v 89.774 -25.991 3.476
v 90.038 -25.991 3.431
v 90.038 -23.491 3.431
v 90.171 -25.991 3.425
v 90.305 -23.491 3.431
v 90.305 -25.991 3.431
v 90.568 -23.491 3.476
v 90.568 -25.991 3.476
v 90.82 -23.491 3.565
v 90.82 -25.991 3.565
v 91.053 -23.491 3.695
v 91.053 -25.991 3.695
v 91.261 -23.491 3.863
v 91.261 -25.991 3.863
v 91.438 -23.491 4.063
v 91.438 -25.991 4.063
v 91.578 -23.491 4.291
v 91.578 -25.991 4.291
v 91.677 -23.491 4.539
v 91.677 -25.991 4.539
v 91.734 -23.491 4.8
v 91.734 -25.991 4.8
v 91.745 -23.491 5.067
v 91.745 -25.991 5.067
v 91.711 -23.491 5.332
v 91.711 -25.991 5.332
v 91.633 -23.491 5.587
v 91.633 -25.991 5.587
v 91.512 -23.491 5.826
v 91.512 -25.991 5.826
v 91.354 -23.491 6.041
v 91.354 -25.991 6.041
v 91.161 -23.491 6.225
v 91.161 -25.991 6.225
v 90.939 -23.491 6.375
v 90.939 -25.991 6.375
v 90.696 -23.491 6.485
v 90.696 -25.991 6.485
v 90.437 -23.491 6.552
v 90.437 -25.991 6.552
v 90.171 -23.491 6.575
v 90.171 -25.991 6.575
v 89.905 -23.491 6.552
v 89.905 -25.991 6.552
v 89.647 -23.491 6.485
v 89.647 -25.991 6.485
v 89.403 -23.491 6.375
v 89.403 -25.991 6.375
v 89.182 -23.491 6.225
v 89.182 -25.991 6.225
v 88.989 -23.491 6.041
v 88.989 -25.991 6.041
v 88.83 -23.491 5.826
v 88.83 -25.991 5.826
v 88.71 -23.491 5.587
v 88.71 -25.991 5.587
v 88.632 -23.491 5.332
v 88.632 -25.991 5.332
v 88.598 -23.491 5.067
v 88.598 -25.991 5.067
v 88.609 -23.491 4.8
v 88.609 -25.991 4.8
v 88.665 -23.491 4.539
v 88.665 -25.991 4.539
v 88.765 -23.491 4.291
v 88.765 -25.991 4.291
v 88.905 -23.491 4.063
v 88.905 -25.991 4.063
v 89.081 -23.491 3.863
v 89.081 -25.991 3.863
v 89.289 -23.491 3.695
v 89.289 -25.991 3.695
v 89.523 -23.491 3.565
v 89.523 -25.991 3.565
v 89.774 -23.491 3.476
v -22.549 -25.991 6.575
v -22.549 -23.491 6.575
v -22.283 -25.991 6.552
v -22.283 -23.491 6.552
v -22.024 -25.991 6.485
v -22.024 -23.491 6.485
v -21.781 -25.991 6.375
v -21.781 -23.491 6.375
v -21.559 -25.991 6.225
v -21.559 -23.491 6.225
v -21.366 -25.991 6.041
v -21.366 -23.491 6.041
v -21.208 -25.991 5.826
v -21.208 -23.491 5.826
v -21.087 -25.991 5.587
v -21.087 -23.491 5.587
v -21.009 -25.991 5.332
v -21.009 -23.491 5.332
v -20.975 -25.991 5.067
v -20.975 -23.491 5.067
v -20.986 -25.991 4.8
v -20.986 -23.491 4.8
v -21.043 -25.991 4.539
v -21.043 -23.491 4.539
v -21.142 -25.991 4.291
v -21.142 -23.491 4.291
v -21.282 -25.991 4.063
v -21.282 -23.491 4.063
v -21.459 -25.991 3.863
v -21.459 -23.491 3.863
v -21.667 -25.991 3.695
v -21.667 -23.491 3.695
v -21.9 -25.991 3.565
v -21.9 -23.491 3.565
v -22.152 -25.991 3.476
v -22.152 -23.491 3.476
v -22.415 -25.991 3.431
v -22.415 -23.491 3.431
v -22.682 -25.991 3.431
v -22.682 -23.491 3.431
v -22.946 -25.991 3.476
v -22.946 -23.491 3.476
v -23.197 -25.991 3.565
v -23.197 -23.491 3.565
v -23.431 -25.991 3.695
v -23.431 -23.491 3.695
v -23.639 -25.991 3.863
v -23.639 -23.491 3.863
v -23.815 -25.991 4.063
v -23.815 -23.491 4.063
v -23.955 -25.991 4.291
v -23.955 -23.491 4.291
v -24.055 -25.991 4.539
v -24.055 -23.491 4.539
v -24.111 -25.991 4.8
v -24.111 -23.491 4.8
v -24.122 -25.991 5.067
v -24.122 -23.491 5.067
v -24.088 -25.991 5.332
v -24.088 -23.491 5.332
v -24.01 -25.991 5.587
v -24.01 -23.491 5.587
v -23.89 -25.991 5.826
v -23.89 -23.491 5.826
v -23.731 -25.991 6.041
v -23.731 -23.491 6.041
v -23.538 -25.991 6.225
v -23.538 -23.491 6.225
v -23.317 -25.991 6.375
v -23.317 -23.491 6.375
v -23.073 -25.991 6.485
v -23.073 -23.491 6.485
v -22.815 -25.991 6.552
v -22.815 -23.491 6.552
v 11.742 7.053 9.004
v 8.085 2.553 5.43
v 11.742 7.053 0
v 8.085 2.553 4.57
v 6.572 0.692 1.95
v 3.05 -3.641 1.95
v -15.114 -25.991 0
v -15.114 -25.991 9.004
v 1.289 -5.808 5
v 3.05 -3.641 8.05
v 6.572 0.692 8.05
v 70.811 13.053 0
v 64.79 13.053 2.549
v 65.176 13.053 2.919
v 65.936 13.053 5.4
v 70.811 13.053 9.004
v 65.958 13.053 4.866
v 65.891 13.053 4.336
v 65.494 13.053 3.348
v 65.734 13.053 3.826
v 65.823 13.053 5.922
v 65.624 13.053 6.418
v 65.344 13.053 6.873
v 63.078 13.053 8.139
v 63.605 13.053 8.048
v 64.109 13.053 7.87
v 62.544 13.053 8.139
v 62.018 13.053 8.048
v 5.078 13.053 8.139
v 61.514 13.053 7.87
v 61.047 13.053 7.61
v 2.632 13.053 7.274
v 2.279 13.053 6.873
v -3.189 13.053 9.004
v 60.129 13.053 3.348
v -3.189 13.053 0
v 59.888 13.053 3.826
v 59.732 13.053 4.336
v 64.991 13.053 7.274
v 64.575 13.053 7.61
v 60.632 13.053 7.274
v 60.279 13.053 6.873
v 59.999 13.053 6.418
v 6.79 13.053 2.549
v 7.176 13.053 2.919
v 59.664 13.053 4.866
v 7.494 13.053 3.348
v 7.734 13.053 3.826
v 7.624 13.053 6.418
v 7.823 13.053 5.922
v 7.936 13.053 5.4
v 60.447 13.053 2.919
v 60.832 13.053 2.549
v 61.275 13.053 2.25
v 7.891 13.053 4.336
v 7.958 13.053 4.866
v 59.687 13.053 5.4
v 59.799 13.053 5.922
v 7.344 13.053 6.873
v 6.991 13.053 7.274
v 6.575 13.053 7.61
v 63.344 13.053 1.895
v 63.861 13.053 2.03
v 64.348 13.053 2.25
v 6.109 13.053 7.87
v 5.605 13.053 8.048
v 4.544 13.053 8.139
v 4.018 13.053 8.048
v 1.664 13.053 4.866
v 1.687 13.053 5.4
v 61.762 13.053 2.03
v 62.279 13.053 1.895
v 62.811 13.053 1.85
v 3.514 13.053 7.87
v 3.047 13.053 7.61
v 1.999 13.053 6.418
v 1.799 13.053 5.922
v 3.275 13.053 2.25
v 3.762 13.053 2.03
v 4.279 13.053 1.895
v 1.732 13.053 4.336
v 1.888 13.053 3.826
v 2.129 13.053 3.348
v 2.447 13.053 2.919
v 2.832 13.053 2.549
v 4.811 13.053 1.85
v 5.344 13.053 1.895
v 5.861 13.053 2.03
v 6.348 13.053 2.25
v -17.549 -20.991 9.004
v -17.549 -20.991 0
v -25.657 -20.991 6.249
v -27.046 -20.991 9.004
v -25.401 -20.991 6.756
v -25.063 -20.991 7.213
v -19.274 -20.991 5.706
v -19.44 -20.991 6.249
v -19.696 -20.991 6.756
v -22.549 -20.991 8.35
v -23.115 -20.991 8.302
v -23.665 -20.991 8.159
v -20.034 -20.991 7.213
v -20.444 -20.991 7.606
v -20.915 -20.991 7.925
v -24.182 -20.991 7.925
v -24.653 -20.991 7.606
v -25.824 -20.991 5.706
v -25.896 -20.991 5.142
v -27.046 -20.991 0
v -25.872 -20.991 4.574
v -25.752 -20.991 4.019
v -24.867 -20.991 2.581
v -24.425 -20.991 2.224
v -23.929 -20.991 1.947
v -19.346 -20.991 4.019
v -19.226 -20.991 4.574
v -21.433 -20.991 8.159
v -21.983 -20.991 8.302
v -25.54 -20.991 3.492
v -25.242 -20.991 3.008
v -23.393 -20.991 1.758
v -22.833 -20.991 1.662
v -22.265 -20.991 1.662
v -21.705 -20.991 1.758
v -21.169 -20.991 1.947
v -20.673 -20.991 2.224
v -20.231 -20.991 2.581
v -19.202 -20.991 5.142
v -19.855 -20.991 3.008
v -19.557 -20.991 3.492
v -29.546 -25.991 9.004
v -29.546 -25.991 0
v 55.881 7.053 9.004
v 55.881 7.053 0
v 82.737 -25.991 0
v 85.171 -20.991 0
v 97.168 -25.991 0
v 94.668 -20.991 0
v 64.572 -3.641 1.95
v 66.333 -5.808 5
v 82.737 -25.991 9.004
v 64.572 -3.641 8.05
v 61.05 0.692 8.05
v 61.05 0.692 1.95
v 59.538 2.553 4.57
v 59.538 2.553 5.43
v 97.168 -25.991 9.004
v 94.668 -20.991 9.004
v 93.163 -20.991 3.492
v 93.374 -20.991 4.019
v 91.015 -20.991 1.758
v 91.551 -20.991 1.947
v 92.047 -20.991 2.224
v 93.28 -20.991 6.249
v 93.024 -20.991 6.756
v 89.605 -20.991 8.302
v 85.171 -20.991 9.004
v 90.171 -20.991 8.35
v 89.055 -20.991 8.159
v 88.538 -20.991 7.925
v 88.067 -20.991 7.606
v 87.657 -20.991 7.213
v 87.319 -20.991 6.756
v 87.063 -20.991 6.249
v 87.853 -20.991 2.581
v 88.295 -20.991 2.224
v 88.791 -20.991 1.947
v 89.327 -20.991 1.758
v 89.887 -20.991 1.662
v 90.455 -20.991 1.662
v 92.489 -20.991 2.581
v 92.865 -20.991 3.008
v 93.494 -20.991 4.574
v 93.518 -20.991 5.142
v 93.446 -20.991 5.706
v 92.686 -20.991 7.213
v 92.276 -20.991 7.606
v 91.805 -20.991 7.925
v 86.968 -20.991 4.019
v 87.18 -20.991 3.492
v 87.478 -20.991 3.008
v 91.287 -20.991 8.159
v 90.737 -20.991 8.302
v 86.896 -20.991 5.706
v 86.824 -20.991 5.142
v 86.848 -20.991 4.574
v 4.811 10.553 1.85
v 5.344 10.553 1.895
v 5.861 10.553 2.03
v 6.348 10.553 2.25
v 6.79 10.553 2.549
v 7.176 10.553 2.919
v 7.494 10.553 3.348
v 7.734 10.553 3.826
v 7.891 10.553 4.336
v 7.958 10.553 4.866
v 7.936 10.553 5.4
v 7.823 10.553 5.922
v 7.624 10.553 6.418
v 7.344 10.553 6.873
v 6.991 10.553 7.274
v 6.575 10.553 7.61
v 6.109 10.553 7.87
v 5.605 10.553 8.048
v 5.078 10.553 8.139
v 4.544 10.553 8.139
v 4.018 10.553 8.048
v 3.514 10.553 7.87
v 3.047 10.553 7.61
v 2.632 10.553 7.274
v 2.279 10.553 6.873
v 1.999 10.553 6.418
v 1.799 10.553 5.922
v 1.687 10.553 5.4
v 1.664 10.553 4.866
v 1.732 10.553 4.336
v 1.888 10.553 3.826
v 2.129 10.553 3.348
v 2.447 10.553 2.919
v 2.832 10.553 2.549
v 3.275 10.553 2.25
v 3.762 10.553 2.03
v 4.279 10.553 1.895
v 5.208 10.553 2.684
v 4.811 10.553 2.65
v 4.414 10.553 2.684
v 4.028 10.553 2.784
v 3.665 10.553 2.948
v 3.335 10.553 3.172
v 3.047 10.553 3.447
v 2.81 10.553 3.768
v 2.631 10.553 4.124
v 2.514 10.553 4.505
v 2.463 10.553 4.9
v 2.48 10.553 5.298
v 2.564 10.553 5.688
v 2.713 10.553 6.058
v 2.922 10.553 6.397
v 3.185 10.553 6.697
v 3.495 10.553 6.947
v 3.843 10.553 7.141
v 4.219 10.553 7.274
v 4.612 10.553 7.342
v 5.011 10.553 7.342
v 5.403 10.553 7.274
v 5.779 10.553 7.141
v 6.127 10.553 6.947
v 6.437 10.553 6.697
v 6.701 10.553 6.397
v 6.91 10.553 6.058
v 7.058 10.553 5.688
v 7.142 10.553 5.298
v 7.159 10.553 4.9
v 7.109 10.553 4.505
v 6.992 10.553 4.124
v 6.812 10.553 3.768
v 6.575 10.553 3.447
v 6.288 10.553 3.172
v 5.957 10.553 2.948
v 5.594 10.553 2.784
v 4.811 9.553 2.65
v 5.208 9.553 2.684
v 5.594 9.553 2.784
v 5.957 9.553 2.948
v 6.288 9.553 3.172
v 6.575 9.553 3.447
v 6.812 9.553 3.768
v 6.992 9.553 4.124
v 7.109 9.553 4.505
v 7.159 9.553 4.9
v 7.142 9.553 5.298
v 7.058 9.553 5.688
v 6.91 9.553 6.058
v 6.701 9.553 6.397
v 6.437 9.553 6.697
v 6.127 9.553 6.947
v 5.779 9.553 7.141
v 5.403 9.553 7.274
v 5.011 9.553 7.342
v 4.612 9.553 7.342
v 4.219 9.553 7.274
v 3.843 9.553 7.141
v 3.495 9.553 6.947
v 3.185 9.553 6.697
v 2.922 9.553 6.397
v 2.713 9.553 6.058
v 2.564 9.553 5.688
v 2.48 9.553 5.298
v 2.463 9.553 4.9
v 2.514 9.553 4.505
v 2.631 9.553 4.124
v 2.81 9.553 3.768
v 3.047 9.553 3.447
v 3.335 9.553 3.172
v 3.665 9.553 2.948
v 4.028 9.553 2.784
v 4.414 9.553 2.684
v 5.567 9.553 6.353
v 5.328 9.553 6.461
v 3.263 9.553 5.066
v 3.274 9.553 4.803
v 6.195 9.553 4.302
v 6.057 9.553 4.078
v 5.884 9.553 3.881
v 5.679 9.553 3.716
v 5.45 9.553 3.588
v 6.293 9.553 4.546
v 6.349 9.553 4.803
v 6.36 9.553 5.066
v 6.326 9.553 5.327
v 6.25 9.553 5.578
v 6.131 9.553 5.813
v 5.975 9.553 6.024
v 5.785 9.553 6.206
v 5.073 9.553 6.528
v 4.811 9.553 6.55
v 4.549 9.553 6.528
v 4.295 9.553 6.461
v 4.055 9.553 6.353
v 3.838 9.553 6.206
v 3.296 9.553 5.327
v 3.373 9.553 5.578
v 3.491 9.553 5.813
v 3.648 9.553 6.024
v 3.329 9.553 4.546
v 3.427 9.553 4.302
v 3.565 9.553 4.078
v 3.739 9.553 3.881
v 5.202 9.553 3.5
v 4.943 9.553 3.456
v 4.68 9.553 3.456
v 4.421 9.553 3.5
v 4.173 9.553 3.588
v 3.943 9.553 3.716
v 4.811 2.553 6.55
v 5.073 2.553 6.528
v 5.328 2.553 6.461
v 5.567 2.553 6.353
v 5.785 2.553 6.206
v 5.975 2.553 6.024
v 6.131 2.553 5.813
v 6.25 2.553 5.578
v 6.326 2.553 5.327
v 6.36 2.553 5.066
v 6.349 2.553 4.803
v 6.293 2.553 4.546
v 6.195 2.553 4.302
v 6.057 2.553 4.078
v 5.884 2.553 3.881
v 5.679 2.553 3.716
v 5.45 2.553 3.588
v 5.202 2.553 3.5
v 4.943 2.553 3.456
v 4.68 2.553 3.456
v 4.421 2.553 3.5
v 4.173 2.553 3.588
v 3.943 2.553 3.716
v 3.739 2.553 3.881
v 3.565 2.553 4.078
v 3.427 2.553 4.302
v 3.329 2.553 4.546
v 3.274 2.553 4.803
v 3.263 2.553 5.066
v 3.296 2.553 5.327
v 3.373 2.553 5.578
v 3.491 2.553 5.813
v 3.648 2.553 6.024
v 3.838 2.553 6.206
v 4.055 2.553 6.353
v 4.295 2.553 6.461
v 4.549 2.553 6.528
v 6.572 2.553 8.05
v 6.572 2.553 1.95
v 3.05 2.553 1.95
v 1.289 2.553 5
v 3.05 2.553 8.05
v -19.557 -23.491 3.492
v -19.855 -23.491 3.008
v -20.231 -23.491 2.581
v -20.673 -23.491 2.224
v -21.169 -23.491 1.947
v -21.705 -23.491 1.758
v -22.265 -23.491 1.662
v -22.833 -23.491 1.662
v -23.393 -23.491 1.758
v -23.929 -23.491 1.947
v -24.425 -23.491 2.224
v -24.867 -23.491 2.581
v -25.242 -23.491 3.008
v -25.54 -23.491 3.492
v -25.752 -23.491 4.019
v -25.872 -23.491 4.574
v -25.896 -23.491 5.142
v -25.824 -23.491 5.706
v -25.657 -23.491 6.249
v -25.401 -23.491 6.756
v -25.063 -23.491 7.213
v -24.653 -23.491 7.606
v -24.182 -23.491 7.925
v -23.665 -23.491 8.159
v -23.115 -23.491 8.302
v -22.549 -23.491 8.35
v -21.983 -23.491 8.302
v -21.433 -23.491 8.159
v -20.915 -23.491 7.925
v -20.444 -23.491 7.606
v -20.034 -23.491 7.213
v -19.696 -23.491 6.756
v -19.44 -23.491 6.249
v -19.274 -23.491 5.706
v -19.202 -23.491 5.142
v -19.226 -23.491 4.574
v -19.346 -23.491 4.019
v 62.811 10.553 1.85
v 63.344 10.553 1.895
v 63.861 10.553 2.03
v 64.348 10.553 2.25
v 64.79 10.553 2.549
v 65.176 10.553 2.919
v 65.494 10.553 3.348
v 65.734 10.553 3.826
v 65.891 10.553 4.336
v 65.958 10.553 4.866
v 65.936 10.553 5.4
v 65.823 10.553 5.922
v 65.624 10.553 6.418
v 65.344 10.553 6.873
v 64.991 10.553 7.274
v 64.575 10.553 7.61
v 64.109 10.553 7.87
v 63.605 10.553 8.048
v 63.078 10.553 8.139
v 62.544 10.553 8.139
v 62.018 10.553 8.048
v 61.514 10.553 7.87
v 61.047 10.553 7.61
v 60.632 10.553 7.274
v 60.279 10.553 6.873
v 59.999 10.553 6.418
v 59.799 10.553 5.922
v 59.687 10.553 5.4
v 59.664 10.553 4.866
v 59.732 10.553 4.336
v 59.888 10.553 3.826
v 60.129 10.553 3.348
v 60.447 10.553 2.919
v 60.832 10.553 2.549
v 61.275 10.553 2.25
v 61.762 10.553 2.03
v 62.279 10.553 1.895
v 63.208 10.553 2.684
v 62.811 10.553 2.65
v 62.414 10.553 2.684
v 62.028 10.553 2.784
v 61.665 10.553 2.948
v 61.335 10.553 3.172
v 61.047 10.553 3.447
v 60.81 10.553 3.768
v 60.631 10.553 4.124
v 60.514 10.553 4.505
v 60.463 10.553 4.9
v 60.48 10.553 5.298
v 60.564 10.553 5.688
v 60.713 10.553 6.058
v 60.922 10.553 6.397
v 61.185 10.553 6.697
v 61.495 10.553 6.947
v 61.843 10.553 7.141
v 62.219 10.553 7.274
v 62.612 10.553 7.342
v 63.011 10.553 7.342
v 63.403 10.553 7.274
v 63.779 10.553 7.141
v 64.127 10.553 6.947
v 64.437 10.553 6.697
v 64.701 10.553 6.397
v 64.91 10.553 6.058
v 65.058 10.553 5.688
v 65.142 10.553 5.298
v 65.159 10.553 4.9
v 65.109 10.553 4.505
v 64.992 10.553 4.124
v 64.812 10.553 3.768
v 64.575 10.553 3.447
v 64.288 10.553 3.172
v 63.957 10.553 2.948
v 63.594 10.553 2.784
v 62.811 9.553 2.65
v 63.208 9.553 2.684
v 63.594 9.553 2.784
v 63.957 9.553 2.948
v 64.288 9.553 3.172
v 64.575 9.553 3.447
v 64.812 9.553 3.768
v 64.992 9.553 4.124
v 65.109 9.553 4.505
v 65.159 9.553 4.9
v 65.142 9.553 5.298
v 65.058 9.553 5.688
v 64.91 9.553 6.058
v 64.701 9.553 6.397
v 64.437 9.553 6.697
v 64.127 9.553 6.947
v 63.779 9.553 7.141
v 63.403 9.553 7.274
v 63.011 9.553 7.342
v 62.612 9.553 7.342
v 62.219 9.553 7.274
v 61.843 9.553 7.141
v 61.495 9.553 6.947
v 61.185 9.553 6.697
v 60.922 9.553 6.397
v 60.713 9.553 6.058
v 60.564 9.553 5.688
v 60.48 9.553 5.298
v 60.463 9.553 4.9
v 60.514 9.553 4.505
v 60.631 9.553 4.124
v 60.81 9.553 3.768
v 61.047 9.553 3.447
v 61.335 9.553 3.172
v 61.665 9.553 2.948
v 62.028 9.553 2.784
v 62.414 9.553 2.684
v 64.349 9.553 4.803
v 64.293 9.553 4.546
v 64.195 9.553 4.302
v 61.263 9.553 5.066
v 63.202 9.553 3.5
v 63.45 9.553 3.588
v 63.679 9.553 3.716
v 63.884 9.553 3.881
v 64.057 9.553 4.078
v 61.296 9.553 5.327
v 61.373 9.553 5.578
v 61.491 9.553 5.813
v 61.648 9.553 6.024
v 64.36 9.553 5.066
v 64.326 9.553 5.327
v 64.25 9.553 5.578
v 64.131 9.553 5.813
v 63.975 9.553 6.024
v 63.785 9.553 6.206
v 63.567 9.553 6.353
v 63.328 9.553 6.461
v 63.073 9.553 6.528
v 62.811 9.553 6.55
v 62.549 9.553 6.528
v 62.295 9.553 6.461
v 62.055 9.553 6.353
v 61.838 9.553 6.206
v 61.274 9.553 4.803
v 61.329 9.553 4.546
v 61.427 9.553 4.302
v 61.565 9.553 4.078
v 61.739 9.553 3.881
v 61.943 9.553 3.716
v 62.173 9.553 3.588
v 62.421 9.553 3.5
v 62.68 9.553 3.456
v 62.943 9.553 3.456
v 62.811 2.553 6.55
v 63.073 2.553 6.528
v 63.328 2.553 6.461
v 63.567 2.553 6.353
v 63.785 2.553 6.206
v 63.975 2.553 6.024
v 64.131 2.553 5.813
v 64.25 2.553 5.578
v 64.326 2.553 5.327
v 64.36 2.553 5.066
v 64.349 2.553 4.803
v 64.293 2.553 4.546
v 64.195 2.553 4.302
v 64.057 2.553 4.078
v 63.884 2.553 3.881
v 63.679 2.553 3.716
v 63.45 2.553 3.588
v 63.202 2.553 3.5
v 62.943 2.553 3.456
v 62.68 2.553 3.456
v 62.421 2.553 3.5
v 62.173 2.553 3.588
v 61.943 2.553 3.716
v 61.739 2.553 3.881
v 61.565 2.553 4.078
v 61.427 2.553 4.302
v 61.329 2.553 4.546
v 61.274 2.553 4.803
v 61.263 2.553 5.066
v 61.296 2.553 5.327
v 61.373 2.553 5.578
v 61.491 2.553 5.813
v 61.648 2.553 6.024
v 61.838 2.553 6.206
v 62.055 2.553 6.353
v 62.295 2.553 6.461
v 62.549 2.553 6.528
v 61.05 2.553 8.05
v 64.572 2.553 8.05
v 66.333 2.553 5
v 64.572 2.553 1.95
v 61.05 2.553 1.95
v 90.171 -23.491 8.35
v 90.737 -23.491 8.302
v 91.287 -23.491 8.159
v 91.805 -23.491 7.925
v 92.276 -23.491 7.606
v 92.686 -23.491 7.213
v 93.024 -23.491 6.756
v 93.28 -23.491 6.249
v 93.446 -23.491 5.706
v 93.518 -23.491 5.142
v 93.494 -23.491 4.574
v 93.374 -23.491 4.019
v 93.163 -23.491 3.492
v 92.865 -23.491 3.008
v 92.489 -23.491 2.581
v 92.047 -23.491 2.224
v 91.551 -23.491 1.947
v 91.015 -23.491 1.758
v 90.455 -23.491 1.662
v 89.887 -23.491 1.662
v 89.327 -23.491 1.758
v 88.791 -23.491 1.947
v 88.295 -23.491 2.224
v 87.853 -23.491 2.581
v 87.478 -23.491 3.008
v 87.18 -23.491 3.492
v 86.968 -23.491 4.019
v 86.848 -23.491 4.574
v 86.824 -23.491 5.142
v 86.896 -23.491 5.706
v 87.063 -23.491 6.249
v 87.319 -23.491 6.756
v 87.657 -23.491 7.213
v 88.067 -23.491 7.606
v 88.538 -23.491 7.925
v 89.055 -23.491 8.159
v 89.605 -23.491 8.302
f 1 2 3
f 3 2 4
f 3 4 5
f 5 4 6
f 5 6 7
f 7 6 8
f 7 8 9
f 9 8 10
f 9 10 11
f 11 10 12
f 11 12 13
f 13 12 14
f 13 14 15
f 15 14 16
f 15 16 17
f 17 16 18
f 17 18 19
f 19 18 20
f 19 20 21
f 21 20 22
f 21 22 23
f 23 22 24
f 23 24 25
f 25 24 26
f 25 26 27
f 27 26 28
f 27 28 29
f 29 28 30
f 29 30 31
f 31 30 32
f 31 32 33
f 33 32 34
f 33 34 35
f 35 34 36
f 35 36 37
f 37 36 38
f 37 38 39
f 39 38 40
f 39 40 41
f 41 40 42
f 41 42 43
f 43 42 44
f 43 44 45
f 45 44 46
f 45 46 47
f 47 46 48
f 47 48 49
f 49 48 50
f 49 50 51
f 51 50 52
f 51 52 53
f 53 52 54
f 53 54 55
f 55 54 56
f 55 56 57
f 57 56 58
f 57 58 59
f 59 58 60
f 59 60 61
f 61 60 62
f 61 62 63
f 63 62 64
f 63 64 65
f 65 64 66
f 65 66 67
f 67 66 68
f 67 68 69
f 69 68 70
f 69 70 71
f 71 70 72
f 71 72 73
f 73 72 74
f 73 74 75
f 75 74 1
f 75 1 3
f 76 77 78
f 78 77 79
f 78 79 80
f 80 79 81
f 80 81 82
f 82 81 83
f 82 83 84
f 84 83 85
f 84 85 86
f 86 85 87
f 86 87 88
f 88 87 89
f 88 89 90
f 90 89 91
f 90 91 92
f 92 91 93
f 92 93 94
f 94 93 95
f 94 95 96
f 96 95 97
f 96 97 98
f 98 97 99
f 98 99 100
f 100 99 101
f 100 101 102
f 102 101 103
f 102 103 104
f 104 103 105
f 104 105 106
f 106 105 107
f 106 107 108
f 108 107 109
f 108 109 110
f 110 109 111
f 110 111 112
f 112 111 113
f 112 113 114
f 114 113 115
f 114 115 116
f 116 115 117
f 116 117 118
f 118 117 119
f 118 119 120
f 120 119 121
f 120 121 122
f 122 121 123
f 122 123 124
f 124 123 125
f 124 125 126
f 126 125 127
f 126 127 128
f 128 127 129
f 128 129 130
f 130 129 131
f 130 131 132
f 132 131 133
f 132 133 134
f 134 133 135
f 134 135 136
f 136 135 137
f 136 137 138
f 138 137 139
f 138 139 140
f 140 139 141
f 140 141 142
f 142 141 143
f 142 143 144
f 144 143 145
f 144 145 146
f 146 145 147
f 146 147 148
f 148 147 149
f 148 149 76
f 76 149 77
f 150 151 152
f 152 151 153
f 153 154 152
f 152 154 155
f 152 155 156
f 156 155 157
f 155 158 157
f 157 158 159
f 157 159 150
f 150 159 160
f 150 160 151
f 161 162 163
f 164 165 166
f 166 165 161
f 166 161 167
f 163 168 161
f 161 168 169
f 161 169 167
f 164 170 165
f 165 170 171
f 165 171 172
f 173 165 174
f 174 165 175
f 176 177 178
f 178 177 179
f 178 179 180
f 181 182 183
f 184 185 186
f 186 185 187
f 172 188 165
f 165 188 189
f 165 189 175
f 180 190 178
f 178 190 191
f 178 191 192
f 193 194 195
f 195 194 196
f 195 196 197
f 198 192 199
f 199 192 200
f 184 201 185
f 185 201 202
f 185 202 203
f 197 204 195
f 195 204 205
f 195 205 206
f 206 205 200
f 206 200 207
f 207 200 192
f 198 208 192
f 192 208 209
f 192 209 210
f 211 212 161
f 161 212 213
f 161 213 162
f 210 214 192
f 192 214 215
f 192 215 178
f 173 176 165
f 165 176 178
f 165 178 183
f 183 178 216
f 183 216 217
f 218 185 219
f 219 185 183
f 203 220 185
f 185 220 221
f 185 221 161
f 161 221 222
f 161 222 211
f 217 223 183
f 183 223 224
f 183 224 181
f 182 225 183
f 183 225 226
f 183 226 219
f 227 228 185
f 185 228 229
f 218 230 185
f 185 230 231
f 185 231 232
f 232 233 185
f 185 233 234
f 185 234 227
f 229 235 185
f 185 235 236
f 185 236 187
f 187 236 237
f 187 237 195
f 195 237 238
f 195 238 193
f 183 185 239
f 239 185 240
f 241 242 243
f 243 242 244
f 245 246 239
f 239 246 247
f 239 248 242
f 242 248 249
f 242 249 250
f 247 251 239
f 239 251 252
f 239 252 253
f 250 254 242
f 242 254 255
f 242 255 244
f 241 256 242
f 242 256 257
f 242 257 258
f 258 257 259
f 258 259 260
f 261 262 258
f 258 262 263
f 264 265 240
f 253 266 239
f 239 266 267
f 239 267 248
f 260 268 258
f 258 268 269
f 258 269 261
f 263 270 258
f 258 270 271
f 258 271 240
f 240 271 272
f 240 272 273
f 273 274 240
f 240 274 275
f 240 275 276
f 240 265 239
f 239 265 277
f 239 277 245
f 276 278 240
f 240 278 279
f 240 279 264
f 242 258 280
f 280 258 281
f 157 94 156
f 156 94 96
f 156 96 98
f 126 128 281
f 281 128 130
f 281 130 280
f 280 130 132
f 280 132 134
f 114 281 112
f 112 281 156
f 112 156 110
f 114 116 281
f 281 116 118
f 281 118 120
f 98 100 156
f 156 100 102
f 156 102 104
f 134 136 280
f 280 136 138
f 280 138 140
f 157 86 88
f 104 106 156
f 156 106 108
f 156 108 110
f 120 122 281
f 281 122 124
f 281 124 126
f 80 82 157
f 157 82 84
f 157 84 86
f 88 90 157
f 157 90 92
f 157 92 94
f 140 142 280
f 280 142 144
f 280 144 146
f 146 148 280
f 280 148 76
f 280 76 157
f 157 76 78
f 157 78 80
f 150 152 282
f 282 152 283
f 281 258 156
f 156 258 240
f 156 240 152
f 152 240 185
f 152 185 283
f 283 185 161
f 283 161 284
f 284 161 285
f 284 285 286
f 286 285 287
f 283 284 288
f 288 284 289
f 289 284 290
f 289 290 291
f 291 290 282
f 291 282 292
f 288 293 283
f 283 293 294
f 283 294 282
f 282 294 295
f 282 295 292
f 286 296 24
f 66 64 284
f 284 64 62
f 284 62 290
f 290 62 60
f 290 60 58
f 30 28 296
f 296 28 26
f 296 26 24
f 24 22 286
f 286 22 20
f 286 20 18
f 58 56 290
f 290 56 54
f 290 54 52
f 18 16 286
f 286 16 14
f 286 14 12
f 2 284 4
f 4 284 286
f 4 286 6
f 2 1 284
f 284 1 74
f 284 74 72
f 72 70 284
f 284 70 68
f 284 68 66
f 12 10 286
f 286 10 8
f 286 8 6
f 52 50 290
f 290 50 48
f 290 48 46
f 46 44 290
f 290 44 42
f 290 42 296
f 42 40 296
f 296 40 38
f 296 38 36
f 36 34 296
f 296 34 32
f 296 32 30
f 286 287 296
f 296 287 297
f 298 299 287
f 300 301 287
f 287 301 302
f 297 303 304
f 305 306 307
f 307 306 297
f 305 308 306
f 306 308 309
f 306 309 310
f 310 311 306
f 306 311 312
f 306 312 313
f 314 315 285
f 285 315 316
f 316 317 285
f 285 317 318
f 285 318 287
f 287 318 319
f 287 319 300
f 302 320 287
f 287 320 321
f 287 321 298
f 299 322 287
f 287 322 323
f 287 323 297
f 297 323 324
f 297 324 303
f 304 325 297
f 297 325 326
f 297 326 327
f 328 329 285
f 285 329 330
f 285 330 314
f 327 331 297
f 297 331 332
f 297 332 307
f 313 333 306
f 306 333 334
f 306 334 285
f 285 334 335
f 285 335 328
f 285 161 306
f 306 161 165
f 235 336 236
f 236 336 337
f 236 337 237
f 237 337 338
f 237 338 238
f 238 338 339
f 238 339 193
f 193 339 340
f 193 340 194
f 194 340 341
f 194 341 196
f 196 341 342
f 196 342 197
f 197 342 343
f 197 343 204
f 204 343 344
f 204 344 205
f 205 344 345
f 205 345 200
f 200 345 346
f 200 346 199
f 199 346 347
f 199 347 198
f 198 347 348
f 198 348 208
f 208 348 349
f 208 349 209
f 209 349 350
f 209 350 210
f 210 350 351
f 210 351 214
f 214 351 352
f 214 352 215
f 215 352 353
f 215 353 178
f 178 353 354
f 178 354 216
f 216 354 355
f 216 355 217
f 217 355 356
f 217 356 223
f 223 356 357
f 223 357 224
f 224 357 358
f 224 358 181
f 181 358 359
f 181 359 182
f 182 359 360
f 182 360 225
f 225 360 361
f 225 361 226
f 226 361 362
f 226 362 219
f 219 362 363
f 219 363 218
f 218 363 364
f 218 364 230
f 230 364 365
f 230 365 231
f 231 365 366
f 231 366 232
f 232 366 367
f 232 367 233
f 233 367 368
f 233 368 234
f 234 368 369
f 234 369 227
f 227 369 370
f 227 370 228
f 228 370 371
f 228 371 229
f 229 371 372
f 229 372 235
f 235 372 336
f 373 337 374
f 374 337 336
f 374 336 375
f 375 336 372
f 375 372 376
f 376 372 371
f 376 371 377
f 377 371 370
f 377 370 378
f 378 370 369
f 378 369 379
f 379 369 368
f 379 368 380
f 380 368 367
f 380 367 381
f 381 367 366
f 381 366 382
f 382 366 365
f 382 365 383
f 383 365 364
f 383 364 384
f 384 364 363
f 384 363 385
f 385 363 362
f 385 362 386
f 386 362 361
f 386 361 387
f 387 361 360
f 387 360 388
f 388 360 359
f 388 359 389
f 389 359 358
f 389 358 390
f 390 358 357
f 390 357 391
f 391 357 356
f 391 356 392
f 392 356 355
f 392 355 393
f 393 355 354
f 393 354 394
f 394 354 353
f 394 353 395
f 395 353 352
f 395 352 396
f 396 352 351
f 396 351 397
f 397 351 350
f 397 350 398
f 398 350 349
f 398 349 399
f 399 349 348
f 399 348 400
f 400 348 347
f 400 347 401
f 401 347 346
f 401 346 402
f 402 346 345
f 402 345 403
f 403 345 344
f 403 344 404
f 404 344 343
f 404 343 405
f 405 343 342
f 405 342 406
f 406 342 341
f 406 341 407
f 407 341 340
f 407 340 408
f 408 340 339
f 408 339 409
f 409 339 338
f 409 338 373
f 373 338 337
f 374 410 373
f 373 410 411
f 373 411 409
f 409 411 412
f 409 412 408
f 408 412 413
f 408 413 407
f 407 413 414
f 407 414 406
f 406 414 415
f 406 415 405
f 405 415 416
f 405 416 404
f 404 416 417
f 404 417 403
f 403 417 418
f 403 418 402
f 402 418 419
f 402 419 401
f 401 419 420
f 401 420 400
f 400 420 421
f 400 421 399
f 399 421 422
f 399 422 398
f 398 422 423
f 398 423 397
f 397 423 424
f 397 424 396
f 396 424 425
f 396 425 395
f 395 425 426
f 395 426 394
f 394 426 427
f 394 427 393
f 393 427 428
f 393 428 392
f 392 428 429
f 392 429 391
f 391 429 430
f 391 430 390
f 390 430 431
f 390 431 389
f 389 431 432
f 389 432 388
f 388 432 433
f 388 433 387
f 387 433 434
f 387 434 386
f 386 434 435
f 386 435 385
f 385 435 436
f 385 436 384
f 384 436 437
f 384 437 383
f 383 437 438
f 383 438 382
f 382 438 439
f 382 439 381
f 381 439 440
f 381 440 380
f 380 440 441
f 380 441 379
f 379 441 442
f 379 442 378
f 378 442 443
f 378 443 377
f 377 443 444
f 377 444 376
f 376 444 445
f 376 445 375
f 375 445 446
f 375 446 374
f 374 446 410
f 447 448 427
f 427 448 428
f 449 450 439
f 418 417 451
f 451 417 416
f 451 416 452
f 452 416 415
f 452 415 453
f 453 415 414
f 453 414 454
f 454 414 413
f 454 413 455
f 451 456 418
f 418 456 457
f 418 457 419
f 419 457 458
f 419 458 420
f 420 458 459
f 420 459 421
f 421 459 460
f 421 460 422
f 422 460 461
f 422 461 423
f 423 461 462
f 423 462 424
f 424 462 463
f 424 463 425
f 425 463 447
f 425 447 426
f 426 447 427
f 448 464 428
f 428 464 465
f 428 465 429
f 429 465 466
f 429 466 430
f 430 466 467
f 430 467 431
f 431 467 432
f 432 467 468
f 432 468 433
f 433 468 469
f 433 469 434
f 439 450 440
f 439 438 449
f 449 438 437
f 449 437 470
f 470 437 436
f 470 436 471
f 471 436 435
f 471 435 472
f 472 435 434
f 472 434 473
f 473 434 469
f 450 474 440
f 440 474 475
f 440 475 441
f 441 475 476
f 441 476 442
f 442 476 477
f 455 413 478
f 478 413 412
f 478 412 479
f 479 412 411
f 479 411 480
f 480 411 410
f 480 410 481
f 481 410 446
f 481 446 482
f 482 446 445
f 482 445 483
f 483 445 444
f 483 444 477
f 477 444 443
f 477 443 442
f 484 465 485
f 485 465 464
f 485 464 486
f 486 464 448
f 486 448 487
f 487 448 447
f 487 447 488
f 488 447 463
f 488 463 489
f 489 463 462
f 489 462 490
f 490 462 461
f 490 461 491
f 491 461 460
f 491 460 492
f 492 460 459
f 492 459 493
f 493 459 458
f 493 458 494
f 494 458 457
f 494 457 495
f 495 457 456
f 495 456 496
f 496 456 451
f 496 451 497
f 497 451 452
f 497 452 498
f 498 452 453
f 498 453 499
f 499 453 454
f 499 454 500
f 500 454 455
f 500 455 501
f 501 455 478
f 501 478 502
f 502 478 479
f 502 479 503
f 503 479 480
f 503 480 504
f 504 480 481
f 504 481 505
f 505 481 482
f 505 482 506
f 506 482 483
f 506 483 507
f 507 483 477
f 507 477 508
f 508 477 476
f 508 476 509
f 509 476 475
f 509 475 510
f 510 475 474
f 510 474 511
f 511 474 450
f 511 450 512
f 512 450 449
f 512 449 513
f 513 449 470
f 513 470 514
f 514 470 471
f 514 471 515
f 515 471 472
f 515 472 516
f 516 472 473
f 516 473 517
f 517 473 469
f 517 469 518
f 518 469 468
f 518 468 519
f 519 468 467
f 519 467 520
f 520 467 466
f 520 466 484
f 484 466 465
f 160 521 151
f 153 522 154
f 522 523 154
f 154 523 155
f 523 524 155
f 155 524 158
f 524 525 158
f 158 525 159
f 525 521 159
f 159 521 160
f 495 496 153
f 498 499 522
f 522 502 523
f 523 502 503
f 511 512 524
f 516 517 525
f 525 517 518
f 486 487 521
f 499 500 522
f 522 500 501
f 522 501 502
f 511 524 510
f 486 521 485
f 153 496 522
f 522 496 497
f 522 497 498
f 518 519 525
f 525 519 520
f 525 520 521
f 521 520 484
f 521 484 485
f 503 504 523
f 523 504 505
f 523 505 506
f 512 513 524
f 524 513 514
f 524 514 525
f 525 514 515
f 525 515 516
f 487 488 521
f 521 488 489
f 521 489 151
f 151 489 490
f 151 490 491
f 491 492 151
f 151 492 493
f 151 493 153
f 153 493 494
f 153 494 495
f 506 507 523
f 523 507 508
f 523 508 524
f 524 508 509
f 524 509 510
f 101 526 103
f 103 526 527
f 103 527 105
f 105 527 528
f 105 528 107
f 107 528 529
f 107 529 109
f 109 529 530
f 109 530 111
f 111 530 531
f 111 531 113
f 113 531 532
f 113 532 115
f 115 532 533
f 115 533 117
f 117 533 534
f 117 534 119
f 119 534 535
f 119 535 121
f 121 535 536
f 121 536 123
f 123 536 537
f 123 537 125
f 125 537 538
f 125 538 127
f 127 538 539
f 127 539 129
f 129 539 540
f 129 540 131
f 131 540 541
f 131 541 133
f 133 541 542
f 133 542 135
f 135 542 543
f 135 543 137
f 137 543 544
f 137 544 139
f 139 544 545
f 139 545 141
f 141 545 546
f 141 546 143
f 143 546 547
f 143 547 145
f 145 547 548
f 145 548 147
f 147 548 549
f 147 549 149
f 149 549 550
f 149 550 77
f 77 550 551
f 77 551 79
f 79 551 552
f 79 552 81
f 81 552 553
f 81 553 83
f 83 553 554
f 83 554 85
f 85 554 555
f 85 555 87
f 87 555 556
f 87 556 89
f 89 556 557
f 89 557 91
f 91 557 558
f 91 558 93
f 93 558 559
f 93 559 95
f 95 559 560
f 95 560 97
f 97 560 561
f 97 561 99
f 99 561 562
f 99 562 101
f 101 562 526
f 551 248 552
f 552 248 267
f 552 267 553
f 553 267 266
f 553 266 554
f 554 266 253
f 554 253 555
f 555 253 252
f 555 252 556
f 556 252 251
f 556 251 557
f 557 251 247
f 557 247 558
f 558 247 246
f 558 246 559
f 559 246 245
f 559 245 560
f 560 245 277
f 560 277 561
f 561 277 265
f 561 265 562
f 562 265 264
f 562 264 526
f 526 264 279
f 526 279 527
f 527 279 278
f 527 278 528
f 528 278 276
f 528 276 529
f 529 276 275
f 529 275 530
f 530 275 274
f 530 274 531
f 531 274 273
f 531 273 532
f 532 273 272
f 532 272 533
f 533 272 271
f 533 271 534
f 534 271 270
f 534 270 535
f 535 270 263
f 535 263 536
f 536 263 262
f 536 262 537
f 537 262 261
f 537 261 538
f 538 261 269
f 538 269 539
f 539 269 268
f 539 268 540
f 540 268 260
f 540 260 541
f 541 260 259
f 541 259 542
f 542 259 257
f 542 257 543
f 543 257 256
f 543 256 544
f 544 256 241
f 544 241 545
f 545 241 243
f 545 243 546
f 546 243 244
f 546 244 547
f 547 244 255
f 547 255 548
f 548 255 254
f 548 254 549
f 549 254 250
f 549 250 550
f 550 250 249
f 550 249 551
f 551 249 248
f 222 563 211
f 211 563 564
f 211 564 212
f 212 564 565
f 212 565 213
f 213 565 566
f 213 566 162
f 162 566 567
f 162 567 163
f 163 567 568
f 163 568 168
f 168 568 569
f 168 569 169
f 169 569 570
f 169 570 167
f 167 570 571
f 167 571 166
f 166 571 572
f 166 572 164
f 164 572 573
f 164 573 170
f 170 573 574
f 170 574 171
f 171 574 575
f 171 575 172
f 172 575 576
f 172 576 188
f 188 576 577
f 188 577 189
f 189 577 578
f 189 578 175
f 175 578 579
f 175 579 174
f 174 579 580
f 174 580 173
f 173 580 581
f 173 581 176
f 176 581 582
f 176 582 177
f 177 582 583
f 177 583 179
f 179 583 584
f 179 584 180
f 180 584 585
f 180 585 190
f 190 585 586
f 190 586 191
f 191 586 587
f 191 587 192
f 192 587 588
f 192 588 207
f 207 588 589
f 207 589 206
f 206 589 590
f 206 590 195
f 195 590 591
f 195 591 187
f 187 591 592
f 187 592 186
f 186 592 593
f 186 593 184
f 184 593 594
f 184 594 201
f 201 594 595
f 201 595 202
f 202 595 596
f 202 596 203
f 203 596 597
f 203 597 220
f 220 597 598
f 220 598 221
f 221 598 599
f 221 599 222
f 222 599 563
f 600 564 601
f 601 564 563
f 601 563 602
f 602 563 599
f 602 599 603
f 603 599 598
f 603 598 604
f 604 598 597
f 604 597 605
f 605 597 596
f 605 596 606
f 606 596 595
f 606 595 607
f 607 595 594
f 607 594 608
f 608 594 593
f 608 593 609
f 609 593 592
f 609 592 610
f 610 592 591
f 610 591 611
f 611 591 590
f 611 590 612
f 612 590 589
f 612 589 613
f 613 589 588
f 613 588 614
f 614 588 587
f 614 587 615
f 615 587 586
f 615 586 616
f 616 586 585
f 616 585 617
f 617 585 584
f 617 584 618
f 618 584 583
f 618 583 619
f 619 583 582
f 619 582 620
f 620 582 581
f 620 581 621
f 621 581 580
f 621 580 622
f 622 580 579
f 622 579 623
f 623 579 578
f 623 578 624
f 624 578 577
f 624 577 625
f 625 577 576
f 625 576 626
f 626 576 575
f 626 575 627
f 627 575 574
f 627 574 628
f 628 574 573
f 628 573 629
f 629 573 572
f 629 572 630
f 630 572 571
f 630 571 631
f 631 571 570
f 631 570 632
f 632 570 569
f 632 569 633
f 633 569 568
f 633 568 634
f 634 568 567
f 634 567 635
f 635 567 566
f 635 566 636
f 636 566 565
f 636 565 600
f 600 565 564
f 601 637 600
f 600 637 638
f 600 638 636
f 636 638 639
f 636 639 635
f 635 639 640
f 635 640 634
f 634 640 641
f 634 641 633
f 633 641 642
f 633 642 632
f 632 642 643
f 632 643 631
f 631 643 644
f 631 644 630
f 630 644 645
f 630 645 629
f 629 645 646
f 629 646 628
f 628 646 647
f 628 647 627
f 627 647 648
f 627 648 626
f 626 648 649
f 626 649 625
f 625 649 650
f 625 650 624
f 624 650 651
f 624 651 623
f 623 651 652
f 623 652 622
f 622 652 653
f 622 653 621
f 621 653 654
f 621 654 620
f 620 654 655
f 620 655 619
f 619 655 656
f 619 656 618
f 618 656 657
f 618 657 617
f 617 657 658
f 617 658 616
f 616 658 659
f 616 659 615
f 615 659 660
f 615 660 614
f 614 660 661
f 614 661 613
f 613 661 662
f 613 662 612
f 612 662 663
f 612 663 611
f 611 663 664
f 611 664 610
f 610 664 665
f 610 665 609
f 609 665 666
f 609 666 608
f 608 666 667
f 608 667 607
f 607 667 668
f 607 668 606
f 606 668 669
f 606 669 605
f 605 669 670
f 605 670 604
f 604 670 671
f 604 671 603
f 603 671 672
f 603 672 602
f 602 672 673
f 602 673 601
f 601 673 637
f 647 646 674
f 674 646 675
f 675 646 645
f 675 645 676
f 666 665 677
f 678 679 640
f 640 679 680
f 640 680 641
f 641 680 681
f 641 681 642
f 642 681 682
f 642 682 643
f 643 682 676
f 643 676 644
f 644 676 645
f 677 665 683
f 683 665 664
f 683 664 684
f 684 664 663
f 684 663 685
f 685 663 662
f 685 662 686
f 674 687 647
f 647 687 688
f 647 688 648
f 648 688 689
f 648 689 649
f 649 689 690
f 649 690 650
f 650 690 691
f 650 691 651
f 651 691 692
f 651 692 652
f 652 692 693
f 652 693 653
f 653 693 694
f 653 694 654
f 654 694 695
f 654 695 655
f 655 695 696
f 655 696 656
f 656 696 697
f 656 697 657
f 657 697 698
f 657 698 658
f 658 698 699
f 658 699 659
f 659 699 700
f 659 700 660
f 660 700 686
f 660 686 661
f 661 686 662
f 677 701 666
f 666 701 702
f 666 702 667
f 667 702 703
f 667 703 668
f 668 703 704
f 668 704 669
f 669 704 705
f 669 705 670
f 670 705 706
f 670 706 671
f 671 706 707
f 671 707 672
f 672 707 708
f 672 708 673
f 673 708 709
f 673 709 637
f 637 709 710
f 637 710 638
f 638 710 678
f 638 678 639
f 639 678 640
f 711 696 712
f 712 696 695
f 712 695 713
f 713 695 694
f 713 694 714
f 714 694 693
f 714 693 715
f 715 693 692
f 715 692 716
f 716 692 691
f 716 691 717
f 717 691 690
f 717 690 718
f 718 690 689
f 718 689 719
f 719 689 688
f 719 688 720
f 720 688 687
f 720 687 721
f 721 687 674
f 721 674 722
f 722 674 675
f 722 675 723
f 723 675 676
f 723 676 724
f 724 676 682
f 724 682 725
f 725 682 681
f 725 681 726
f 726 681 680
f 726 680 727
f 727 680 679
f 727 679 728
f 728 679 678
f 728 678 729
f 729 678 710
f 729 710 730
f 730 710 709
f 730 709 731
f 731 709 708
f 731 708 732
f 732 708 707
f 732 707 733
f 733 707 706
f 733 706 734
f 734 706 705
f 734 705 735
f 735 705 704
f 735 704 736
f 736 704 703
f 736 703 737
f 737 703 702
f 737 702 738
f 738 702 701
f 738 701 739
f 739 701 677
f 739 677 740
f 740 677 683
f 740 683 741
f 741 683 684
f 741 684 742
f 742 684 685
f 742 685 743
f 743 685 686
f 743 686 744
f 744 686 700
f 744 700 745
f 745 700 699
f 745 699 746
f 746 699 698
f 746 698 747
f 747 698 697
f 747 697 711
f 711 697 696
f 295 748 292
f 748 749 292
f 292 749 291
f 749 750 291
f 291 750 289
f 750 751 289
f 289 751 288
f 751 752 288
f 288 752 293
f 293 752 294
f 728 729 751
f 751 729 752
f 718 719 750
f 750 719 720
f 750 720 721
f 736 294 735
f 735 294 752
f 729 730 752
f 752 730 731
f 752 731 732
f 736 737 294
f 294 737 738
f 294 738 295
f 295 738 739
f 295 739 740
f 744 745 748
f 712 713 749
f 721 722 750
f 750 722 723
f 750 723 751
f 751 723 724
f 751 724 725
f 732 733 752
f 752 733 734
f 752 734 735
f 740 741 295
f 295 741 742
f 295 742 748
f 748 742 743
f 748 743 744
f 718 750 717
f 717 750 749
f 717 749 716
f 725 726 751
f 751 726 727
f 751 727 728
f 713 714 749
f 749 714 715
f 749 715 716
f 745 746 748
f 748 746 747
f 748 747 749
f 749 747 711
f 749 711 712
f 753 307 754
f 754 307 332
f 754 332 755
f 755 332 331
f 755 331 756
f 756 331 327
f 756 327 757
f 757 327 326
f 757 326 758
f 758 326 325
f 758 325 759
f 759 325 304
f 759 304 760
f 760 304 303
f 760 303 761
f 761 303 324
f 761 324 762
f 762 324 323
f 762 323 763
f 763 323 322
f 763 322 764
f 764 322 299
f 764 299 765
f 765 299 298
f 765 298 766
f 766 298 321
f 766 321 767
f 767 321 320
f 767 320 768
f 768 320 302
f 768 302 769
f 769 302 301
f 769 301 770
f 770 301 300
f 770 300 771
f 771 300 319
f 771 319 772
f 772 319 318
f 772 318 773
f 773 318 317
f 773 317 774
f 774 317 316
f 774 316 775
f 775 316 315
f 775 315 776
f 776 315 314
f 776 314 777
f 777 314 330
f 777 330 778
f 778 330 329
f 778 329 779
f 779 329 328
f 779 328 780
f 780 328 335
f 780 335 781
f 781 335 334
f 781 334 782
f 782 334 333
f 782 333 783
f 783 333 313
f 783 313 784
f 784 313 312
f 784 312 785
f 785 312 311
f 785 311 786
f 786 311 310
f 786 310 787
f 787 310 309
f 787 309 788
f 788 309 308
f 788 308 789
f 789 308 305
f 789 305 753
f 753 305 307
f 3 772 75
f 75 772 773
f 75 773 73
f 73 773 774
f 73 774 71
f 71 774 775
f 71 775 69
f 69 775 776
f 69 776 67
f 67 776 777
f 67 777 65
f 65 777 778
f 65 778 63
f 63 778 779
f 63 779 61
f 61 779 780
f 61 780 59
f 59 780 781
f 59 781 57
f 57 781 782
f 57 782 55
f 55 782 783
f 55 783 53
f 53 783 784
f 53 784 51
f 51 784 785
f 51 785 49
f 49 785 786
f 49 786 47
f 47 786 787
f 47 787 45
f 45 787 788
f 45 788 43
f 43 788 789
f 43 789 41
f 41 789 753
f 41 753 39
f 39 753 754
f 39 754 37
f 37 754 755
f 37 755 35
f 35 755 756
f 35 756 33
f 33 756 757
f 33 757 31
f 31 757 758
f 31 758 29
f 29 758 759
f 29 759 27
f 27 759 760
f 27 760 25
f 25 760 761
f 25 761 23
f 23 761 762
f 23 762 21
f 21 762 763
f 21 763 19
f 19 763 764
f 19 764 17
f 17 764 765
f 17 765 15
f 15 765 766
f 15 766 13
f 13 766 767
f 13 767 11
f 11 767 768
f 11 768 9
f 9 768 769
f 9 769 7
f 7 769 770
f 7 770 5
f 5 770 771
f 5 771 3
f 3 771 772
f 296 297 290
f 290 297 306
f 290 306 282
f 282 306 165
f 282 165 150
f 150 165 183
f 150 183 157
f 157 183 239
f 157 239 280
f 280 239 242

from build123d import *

# Parameters (mm, degrees)
EXTRUDE_1_DEPTH      = 10
SKETCH_7_R           = 1.55
CUT_EXTRUDE_1_DEPTH  = 36.544157215
CUT_EXTRUDE_2_DEPTH  = 8.5
SKETCH_14_R          = 1.575
CUT_EXTRUDE_10_DEPTH = 10
SKETCH_15_R          = 3.35
CUT_EXTRUDE_11_DEPTH = 2.5
SKETCH_19_W          = 126.714157214
SKETCH_19_H          = 0.99604336
CUT_EXTRUDE_14_DEPTH = 40.044157215


with BuildPart() as part:
    # 草图1 → 凸台-拉伸1 (new body)
    with BuildSketch(Plane.XY):
        Polygon((-3.188712924, 13.052848472), (33.811287076, 13.052848472), (33.811287076, 7.052848472), (15.60198174, 7.052848472), (11.74198174, 7.052848472), (-15.114428715, -25.991308743), (-17.614428715, -25.991308743), (-29.545791531, -25.991308743), (-27.045791531, -20.991308743), (-17.548712924, -20.991308743), align=None)
    extrude_1 = extrude(amount=EXTRUDE_1_DEPTH)

    # 镜向1: 凸台-拉伸1 across plane
    add(extrude_1.mirror(Plane(origin=(33.811287076, 13.052848472, 10), x_dir=(0, 0, 1), z_dir=(-1, 0, 0))))

    # 草图5 → 切除-旋转7 (revolve, cut)
    with BuildSketch(Plane.XY.offset(5)):
        Polygon((7.961287076, 13.052848472), (7.961287076, 10.552848472), (7.161287076, 10.552848472), (7.161287076, 9.552848472), (6.361287076, 9.552848472), (4.811287076, 9.552848472), (4.811287076, 13.052848472), align=None)
    cut_revolve_7 = revolve(axis=Axis((4.811287076, 9.552848472, 5), (0, 1, 0)), mode=Mode.SUBTRACT)

    # 草图7 → 切除-拉伸1 (cut, through all)
    with BuildSketch(Plane(origin=(0, 9.552848472, 0), x_dir=(1, 0, 0), z_dir=(0, 1, 0))):
        with Locations((4.811287076, -5)):
            Circle(SKETCH_7_R)
    cut_extrude_1 = extrude(amount=-CUT_EXTRUDE_1_DEPTH, mode=Mode.SUBTRACT)

    # 草图8 → 切除-拉伸2 (cut)
    with BuildSketch(Plane(origin=(0, -5.947151528, 0), x_dir=(1, 0, 0), z_dir=(0, 1, 0))):
        Polygon((8.333123718, -5), (6.572205397, -1.95), (3.050368755, -1.95), (1.289450434, -5), (3.050368755, -8.05), (6.572205397, -8.05), align=None)
    cut_extrude_2 = extrude(amount=CUT_EXTRUDE_2_DEPTH, mode=Mode.SUBTRACT)

    # 草图14 → 切除-拉伸10 (cut)
    with BuildSketch(Plane(origin=(0, -20.991308743, 0), x_dir=(1, 0, 0), z_dir=(0, 1, 0))):
        with Locations((-22.548712924, -5)):
            Circle(SKETCH_14_R)
    cut_extrude_10 = extrude(amount=-CUT_EXTRUDE_10_DEPTH, mode=Mode.SUBTRACT)

    # 草图15 → 切除-拉伸11 (cut)
    with BuildSketch(Plane(origin=(0, -20.991308743, 0), x_dir=(1, 0, 0), z_dir=(0, 1, 0))):
        with Locations((-22.548712924, -5)):
            Circle(SKETCH_15_R)
    cut_extrude_11 = extrude(amount=-CUT_EXTRUDE_11_DEPTH, mode=Mode.SUBTRACT)

    # 镜向3: 切除-旋转7, 切除-拉伸1, 切除-拉伸2, 切除-拉伸10, 切除-拉伸11 across plane
    add(cut_revolve_7.mirror(Plane(origin=(33.811287076, 0, 0), x_dir=(0, 0, 1), z_dir=(1, 0, 0))), mode=Mode.SUBTRACT)
    add(cut_extrude_1.mirror(Plane(origin=(33.811287076, 0, 0), x_dir=(0, 0, 1), z_dir=(1, 0, 0))), mode=Mode.SUBTRACT)
    add(cut_extrude_2.mirror(Plane(origin=(33.811287076, 0, 0), x_dir=(0, 0, 1), z_dir=(1, 0, 0))), mode=Mode.SUBTRACT)
    add(cut_extrude_10.mirror(Plane(origin=(33.811287076, 0, 0), x_dir=(0, 0, 1), z_dir=(1, 0, 0))), mode=Mode.SUBTRACT)
    add(cut_extrude_11.mirror(Plane(origin=(33.811287076, 0, 0), x_dir=(0, 0, 1), z_dir=(1, 0, 0))), mode=Mode.SUBTRACT)

    # 草图19 → 切除-拉伸14 (cut, through all)
    with BuildSketch(Plane(origin=(0, 13.052848472, 0), x_dir=(1, 0, 0), z_dir=(0, 1, 0))):
        with Locations((33.811287076, -9.50197832)):
            Rectangle(SKETCH_19_W, SKETCH_19_H)
    extrude(amount=-CUT_EXTRUDE_14_DEPTH, mode=Mode.SUBTRACT)


solid = part.part
